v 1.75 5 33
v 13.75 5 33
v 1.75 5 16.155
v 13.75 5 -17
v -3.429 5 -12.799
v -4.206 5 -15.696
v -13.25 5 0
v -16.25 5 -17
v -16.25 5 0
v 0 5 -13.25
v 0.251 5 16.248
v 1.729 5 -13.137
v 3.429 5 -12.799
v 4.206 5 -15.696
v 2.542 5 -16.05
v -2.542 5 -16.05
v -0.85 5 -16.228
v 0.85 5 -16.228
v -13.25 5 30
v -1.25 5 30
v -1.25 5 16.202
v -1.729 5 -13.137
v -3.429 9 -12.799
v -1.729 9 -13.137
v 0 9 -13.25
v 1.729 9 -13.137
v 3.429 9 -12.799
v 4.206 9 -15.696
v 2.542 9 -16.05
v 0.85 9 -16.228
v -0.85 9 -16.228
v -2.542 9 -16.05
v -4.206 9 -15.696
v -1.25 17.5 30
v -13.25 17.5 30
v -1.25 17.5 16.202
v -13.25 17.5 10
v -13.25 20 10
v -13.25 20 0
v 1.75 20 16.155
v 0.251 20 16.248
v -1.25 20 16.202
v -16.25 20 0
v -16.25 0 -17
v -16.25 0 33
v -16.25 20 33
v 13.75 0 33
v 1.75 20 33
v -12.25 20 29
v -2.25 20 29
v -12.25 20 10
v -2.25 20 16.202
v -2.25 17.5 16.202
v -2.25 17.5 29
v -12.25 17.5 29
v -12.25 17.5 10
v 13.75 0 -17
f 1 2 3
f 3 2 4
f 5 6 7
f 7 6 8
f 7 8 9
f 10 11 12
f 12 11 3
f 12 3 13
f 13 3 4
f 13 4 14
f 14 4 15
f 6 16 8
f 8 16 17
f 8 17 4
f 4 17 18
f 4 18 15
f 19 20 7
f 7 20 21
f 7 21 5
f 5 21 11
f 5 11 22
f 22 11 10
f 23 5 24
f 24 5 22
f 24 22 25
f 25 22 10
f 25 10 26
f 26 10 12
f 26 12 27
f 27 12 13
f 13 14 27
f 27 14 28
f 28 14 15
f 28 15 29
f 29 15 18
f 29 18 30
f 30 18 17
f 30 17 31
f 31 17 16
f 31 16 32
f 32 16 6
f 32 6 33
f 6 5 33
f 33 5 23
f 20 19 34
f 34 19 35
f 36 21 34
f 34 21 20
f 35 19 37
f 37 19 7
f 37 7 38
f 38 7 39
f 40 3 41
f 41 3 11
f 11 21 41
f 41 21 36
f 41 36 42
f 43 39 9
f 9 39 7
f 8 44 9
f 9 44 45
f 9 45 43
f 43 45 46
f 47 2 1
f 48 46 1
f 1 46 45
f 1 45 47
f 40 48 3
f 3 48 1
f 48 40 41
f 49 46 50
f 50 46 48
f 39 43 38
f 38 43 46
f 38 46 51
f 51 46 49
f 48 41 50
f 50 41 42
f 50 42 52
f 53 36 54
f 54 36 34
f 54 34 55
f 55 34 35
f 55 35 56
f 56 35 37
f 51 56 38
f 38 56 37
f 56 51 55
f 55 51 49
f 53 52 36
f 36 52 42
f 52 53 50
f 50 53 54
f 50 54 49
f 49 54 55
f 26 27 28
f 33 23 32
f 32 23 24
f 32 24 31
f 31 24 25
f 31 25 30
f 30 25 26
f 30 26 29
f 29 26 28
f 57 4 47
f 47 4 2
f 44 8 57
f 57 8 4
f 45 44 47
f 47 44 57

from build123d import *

# Parameters (mm, degrees)
SKETCH1_W               = 45
SKETCH1_H               = 85
BOSS_EXTRUDE1_DEPTH     = 100
SHELL1_T                = -5
SKETCH2_W               = 3
SKETCH2_H               = 10
BOSS_EXTRUDE2_DEPTH     = 15
SKETCH4_W               = 20
SKETCH4_H               = 2.5
BOSS_EXTRUDE3_DEPTH     = 1
SKETCH5_W               = 13.798148254
SKETCH5_H               = 2.5
BOSS_EXTRUDE4_DEPTH     = 1
SKETCH6_W               = 10
SKETCH6_H               = 2.5
BOSS_EXTRUDE5_DEPTH     = 1
SKETCH9_W               = 10.477527882
SKETCH9_H               = 6.322646136
CUT_EXTRUDE1_DEPTH      = 11
CUT_EXTRUDE2_DEPTH      = 107.477697195
CUT_EXTRUDE2_DEPTH_BACK = 107.477697195
SKETCH10_W              = 54.233150032
SKETCH10_H              = 93.874108495
SKETCH10_W_2            = 30
SKETCH10_H_2            = 50


with BuildPart() as part:
    # Sketch1 → Boss-Extrude1 (new body)
    with BuildSketch(Plane(origin=(0, 0, 0), x_dir=(1, 0, 0), z_dir=(0, 1, 0))):
        Rectangle(SKETCH1_W, SKETCH1_H)
    extrude(amount=BOSS_EXTRUDE1_DEPTH)

    # Shell1
    shell1_openings = [part.faces().sort_by_distance(p)[0] for p in [
        (0, 100, 0),
    ]]
    offset(amount=SHELL1_T, openings=shell1_openings, kind=Kind.INTERSECTION)

    # Sketch2 → Boss-Extrude2 (add)
    with BuildSketch(Plane(origin=(0, 5, 0), x_dir=(1, 0, 0), z_dir=(0, 1, 0))):
        with BuildLine():
            Line((-13.25, -30), (-13.25, -25))
            Line((-13.25, -25), (-16.25, -25))
            Line((-16.25, -25), (-16.25, -33))
            Line((-16.25, -33), (1.75, -33))
            Line((1.75, -33), (1.75, -16.155494421))
            ThreePointArc((1.75, -16.155494421), (0.251072202, -16.248060277), (-1.25, -16.201851746))
            Line((-1.25, -16.201851746), (-1.25, -30))
            Line((-1.25, -30), (-13.25, -30))
        make_face()
        with Locations((-14.75, -20)):
            Rectangle(SKETCH2_W, SKETCH2_H)
        with BuildLine():
            Line((-16.25, -15), (-13.25, -15))
            Line((-13.25, -15), (-13.25, -9.407443861))
            ThreePointArc((-13.25, -9.407443861), (-15.481844205, -4.937104415), (-16.25, 0))
            Line((-16.25, 0), (-16.25, -15))
        make_face()
        with BuildLine():
            Line((-4.205809483, 15.696294677), (-3.429352348, 12.798517198))
            ThreePointArc((-3.429352348, 12.798517198), (0, 13.25), (3.429352348, 12.798517198))
            Line((3.429352348, 12.798517198), (4.205809483, 15.696294677))
            ThreePointArc((4.205809483, 15.696294677), (0, 16.25), (-4.205809483, 15.696294677))
        make_face()
        with BuildLine():
            ThreePointArc((-16.25, 0), (-15.481844205, -4.937104415), (-13.25, -9.407443861))
            Line((-13.25, -9.407443861), (-13.25, 0))
            Line((-13.25, 0), (-16.25, 0))
        make_face()
    extrude(amount=BOSS_EXTRUDE2_DEPTH)

    # Sketch4 → Boss-Extrude3 (add)
    with BuildSketch(Plane(origin=(-13.25, 0, 0), x_dir=(0, 0, -1), z_dir=(1, 0, 0))):
        with Locations((-20, 18.75)):
            Rectangle(SKETCH4_W, SKETCH4_H)
    extrude(amount=BOSS_EXTRUDE3_DEPTH)

    # Sketch5 → Boss-Extrude4 (add)
    with BuildSketch(Plane.ZY.offset(1.25)):
        with Locations((23.100925873, 18.75)):
            Rectangle(SKETCH5_W, SKETCH5_H)
    extrude(amount=BOSS_EXTRUDE4_DEPTH)

    # Sketch6 → Boss-Extrude5 (add)
    with BuildSketch(Plane(origin=(0, 0, 30), x_dir=(-1, 0, 0), z_dir=(0, 0, -1))):
        with Locations((7.25, 18.75)):
            Rectangle(SKETCH6_W, SKETCH6_H)
    extrude(amount=BOSS_EXTRUDE5_DEPTH)

    # Sketch9 → Cut-Extrude1 (cut)
    with BuildSketch(Plane(origin=(0, 20, 0), x_dir=(1, 0, 0), z_dir=(0, 1, 0))):
        with Locations((0.163497959, 14.216347227)):
            Rectangle(SKETCH9_W, SKETCH9_H)
    extrude(amount=-CUT_EXTRUDE1_DEPTH, mode=Mode.SUBTRACT)

    # Sketch10 → Cut-Extrude2 (cut, two sides: drawn at the far end of the back side and taken through both)
    with BuildSketch(Plane(origin=(0, 5, 0), x_dir=(1, 0, 0), z_dir=(0, 1, 0)).offset(-CUT_EXTRUDE2_DEPTH_BACK)):
        with Locations((1.369563357, 1.0979216)):
            Rectangle(SKETCH10_W, SKETCH10_H)
        with Locations((-1.25, -8)):
            Rectangle(SKETCH10_W_2, SKETCH10_H_2, mode=Mode.SUBTRACT)
    extrude(amount=CUT_EXTRUDE2_DEPTH + CUT_EXTRUDE2_DEPTH_BACK, mode=Mode.SUBTRACT)


solid = part.part
